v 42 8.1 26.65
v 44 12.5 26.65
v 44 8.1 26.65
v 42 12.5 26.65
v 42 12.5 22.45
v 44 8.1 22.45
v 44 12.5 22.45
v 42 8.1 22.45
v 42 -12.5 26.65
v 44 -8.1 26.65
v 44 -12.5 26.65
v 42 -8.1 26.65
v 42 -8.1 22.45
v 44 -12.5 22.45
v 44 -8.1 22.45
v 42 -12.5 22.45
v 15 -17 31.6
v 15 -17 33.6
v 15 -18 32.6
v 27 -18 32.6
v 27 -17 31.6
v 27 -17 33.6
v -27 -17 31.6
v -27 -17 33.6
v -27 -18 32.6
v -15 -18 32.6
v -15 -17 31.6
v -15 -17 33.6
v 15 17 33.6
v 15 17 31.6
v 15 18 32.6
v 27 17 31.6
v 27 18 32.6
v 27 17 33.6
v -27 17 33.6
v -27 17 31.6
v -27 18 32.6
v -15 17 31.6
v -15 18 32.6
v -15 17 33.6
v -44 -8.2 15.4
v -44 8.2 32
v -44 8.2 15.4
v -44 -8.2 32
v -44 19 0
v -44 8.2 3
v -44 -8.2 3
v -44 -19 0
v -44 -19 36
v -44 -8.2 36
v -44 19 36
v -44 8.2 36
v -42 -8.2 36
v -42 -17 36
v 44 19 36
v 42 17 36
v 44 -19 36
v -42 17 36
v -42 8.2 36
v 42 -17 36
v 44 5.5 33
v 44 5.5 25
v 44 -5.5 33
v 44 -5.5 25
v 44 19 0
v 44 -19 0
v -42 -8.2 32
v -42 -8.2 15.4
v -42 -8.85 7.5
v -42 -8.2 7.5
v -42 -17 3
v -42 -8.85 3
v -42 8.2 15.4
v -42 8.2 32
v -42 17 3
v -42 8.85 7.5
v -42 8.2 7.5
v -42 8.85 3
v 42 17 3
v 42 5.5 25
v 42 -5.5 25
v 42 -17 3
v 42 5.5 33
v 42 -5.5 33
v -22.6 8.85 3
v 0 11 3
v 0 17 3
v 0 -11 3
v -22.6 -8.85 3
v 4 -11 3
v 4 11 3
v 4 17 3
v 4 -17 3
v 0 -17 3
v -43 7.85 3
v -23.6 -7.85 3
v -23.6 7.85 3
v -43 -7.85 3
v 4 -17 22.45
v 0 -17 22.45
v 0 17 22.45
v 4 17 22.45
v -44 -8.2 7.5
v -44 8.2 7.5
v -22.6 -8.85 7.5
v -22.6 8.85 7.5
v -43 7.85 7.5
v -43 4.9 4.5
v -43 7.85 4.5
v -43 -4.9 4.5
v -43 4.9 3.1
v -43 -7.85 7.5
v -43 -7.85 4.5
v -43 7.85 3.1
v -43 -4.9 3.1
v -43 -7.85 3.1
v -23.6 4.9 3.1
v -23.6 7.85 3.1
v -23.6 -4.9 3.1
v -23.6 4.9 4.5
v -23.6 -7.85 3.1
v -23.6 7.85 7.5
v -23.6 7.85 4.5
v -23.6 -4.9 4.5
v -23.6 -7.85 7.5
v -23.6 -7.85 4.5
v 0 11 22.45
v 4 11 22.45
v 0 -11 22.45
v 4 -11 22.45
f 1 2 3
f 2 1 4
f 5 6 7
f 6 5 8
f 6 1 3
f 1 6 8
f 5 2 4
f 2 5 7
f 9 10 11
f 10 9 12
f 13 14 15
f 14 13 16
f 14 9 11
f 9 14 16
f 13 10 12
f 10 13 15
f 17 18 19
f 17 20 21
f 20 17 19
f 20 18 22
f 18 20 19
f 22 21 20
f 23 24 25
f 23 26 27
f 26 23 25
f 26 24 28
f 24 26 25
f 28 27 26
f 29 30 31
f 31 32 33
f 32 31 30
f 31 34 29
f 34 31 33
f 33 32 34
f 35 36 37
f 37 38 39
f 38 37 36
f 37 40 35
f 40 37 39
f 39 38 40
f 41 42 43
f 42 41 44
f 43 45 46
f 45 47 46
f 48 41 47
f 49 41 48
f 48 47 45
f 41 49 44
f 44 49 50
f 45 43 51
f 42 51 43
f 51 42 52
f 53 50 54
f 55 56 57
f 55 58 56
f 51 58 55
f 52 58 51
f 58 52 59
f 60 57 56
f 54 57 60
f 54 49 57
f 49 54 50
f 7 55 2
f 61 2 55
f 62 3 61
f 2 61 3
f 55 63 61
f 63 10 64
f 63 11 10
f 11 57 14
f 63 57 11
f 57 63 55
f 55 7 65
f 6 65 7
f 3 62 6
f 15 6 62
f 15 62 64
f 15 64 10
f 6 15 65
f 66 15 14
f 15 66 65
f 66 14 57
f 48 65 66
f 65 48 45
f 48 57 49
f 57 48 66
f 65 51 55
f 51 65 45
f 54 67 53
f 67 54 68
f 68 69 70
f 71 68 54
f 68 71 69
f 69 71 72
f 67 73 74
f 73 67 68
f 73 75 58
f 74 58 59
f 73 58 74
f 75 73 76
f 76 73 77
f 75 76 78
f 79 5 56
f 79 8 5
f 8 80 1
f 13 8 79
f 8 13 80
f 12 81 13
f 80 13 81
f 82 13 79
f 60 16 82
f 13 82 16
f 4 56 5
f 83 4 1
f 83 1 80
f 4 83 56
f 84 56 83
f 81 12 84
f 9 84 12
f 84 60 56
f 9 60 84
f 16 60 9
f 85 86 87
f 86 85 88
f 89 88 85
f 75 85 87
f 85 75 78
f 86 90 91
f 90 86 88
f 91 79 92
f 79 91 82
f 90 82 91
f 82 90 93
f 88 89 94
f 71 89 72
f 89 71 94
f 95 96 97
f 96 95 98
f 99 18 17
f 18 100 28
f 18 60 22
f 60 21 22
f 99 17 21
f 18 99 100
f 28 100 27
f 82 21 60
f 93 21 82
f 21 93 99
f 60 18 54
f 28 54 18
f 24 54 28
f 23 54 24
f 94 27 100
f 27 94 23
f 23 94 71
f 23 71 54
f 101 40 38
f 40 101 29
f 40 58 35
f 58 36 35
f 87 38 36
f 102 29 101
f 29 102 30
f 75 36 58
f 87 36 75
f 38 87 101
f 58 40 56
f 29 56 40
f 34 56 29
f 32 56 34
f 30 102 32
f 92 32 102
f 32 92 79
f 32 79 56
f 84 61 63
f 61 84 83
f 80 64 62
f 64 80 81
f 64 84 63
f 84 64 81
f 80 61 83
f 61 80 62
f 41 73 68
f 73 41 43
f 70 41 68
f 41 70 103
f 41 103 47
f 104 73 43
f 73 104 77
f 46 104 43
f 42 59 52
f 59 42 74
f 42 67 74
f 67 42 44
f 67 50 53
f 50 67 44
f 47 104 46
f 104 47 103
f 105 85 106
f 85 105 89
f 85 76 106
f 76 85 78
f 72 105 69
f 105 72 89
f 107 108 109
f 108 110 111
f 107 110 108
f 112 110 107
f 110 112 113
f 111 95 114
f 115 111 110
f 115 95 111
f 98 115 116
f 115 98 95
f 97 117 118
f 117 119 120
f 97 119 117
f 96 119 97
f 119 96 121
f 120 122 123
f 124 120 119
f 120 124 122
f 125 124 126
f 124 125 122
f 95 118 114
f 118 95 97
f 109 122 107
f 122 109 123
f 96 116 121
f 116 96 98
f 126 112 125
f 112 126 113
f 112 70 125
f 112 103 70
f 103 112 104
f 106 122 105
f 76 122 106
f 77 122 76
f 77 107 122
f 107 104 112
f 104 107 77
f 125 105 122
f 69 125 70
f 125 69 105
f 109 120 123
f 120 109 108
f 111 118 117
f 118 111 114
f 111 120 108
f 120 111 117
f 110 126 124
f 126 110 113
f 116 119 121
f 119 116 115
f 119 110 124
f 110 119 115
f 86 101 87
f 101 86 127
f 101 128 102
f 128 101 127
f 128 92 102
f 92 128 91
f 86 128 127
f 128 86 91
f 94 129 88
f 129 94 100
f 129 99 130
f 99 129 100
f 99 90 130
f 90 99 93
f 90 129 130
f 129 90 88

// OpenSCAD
// file: F411_IR_Case_params.scad
//STM32F411 Board parameters
board_length = 52.8;
board_width = 20.7;
pcb_thickness = 1.5;
pcb_max_clearance_top = 4.0; //max height of components on top of PCB
pcb_max_clearance_bottom = 1.1; //height of components on bottom of PCB
pcb_wall_margin = 0.15; //margin from edge of PCB to any walls

pin_row_length = 50.7;
pin_row_width = 2.4;
pin_length = 0.5;
pin_width = 0.6;
pin_plastic_height = 2.8;
pin_row_width_separation = 12.6;
pin_row_dist_from_bottom = 2;

wall_thickness = 2;
base_thickness = 2;

swd_header_protrusion = 3.0;
swd_joint_dist_from_bottom = 1.5;
swd_width = 12.0;

usb_width = 11;

//Calculated parameters
f4_inner_height = pcb_thickness + pcb_max_clearance_top + pcb_max_clearance_bottom;
f4_inner_length = board_length + pcb_wall_margin*2;
f4_inner_width = board_width + pcb_wall_margin*2;

f4_full_length = f4_inner_length + wall_thickness*2;
f4_full_width =  f4_inner_width + wall_thickness*2;
f4_full_height = base_thickness + f4_inner_height;


//IR board params
ir_board_width = 15.4;
ir_board_length = 19.2;
ir_board_thickness = 1.4;
ir_board_top_clearance = 9.0; //technically ~8.6mm
ir_board_bottom_clearance = 1.4;
//ignoring the M2 holes for now
// main file
//include our parameters file
//"include <filename> acts as if the contents of the included file were written in the including file"
//allowing us to use the variables as if they were defined here
include <F411_IR_Case_params.scad>

//The case
//translate([0,-120,full_height/2]) blackpill_f411_protocase();

//The legs. Rotate 90 degrees in the slicer before printing.
//translate([45, 0, full_height/2]) blackpill_f411_protocase_leg();

f411_ir_case_body();

module f411_ir_case_body()
{
    ir_case_width = 34;
    ir_case_length = 84;
    ir_case_height = 34;
    
    ir_mount_dist_from_top = 10;
    ir_sensor_cutout_height = ir_board_bottom_clearance+ir_board_top_clearance + 2;
    
    ir_case_full_width = ir_case_width + wall_thickness*2;
    ir_case_full_length = ir_case_length + wall_thickness*2;
    ir_case_full_height = ir_case_height + base_thickness;
    
    leg_mount_height = 4 + 0.2;
    leg_mount_width = 5;
    leg_mount_length = 4 + 0.4;
    
    triangle_mount_base = 2;
    triangle_mount_dist_from_top = 2.4;
    
    translate([0,0,ir_case_full_height/2]) union()
    {
        difference()
        {
            //main box
            cube([ir_case_full_length, ir_case_full_width, ir_case_full_height], center=true);
            
            //main cutout
            translate([0,0,base_thickness]) cube([ir_case_length, ir_case_width, ir_case_height], center=true);
            
            //mount points to F4 protocase
            translate([ir_case_full_length/2,0,ir_case_full_height/2-ir_mount_dist_from_top]) leg_mount_points(leg_mount_length, leg_mount_width, leg_mount_height);
           
            //USB cutout
            translate([ir_case_full_length/2,0,ir_case_full_height/2-7]) cube([wall_thickness*2, usb_width, 8], center=true);
            
            //IR sensor cutout
            translate([-ir_case_full_length/2,0,-ir_case_height/2 + base_thickness + ir_sensor_cutout_height/2]) cube([wall_thickness*2, ir_board_width+1, ir_sensor_cutout_height], center=true);
            
            //lid removal cutout
            translate([-ir_case_full_length/2,0,ir_case_full_height/2 - 2]) cube([wall_thickness*2, ir_board_width+1, 4], center=true);
            
            //top right triangle cutout
            translate([ir_case_length/4,-ir_case_full_width/2+triangle_mount_base,ir_case_full_height/2 - triangle_mount_base - triangle_mount_dist_from_top]) triangle_mount(triangle_mount_base, wall_thickness/2, 12);
            
            //bottom right triangle cutout
            translate([-ir_case_length/4,-ir_case_full_width/2+triangle_mount_base,ir_case_full_height/2 - triangle_mount_base - triangle_mount_dist_from_top]) triangle_mount(triangle_mount_base, wall_thickness/2, 12);
            
            //top left triangle cutout
            translate([ir_case_length/4,ir_case_full_width/2-triangle_mount_base,ir_case_full_height/2 - triangle_mount_base - triangle_mount_dist_from_top]) mirror([0,1,0]) triangle_mount(triangle_mount_base, wall_thickness/2, 12);
            
            //bottom left triangle cutout
            translate([-ir_case_length/4,ir_case_full_width/2-triangle_mount_base,ir_case_full_height/2 - triangle_mount_base - triangle_mount_dist_from_top]) mirror([0,1,0]) triangle_mount(triangle_mount_base, wall_thickness/2, 12);
        
        }
        
        //holding point for IR board
        translate([-ir_case_full_length/2+(ir_board_length)/2+1+0.1, 0, -ir_case_full_height/2+ir_board_bottom_clearance]) ir_board_holder();
        
        //support for F4 board holder, left
        translate([0,ir_case_full_width/2-wall_thickness,-ir_case_height/2]) mirror([0,1,0]) cube([wall_thickness*2, wall_thickness*3, ir_case_height-ir_mount_dist_from_top-leg_mount_height/2-0.45]);
        
        //Support for F4 board holder, right
        translate([0,-ir_case_full_width/2+wall_thickness*4,-ir_case_height/2]) mirror([0,1,0]) cube([wall_thickness*2, wall_thickness*3, ir_case_height-ir_mount_dist_from_top-leg_mount_height/2-0.45]);
        
    }
   
}


module leg_mount_points(mount_width, mount_length, mount_height)
{
    
    translate([0, 0, 0]) union()
    {
        //left
        translate([0,f4_full_width/2-mount_width/2,-mount_height/2+base_thickness/2-0.35]) cube([mount_length, mount_width, mount_height],center=true);
        
        //right
         translate([0,-f4_full_width/2+mount_width/2,-mount_height/2+base_thickness/2-0.35]) cube([mount_length, mount_width, mount_height],center=true);
    }
}

//module triangle(base,height,length)
//{
//    cyl_d = base/sin(120);
//    scale([1,1,1]) cylinder(r=cyl_d/2, h=length, center=true, $fn=3);
//}

//from https://en.wikibooks.org/wiki/OpenSCAD_User_Manual/Primitive_Solids#polyhedron
//makes 3D triangles
module prism_isos(l, w, h){
   polyhedron(
           points=[[0,0,0], [l,0,0], [l,w,0], [0,w,0], [0,w/2,h], [l,w/2,h]],
           faces=[[0,1,2,3],[5,4,3,2],[0,4,5,1],[0,3,4],[5,2,1]]
           );
  
}

module triangle_mount(base, height, length)
{
    translate([-length/2,0,base/2]) rotate([90,0,0]) union(){
        //triangle portion
        //rotate([90,0,-90]) 
        translate([0,-base/2,0]) prism_isos(length,base,height);
        
        //rectangular support
        //rotate([0,90,0])
        //translate([-length/2,0,base]) 
        translate([length/2,0,-base/2]) cube([length,base,base], center=true);
    }
}

module ir_board_holder()
{
    holder_wall_thickness = 1;
    holder_base_thickness = 1;
    l = ir_board_length + 0.2; //extra margin for filament expansion / printer error
    w = ir_board_width + 0.3; 
    l_full = holder_wall_thickness*2 + l;
    w_full = holder_wall_thickness*2 + w;
    h_full = holder_base_thickness+ir_board_bottom_clearance+pcb_thickness+ir_board_top_clearance;
    
    translate([0,0,h_full/2]) union()
    {
        difference()
        {
            //main structure
            cube([l_full, w_full, h_full], center=true);
            
            //main cutout
            translate([0,0,holder_base_thickness]) cube([l, w, pcb_thickness+ir_board_bottom_clearance+ir_board_top_clearance], center=true);
            
            //cut off the top
            translate([0,0,holder_base_thickness+ir_board_bottom_clearance+pcb_thickness+1]) cube([l_full, w_full, pcb_thickness+ir_board_top_clearance], center=true);
            
        }
        
        //put some supports to raise the board up level to the protrusion of the soldered through hole components
        //left
        translate([0,w/2-w_full/12,holder_base_thickness+ir_board_bottom_clearance-h_full/2]) cube([l_full, w_full/6,ir_board_bottom_clearance], center=true);
        
        //right
        translate([0,-w/2+w_full/12,holder_base_thickness+ir_board_bottom_clearance-h_full/2]) cube([l_full,w_full/6,ir_board_bottom_clearance], center=true);
        
    }
}
